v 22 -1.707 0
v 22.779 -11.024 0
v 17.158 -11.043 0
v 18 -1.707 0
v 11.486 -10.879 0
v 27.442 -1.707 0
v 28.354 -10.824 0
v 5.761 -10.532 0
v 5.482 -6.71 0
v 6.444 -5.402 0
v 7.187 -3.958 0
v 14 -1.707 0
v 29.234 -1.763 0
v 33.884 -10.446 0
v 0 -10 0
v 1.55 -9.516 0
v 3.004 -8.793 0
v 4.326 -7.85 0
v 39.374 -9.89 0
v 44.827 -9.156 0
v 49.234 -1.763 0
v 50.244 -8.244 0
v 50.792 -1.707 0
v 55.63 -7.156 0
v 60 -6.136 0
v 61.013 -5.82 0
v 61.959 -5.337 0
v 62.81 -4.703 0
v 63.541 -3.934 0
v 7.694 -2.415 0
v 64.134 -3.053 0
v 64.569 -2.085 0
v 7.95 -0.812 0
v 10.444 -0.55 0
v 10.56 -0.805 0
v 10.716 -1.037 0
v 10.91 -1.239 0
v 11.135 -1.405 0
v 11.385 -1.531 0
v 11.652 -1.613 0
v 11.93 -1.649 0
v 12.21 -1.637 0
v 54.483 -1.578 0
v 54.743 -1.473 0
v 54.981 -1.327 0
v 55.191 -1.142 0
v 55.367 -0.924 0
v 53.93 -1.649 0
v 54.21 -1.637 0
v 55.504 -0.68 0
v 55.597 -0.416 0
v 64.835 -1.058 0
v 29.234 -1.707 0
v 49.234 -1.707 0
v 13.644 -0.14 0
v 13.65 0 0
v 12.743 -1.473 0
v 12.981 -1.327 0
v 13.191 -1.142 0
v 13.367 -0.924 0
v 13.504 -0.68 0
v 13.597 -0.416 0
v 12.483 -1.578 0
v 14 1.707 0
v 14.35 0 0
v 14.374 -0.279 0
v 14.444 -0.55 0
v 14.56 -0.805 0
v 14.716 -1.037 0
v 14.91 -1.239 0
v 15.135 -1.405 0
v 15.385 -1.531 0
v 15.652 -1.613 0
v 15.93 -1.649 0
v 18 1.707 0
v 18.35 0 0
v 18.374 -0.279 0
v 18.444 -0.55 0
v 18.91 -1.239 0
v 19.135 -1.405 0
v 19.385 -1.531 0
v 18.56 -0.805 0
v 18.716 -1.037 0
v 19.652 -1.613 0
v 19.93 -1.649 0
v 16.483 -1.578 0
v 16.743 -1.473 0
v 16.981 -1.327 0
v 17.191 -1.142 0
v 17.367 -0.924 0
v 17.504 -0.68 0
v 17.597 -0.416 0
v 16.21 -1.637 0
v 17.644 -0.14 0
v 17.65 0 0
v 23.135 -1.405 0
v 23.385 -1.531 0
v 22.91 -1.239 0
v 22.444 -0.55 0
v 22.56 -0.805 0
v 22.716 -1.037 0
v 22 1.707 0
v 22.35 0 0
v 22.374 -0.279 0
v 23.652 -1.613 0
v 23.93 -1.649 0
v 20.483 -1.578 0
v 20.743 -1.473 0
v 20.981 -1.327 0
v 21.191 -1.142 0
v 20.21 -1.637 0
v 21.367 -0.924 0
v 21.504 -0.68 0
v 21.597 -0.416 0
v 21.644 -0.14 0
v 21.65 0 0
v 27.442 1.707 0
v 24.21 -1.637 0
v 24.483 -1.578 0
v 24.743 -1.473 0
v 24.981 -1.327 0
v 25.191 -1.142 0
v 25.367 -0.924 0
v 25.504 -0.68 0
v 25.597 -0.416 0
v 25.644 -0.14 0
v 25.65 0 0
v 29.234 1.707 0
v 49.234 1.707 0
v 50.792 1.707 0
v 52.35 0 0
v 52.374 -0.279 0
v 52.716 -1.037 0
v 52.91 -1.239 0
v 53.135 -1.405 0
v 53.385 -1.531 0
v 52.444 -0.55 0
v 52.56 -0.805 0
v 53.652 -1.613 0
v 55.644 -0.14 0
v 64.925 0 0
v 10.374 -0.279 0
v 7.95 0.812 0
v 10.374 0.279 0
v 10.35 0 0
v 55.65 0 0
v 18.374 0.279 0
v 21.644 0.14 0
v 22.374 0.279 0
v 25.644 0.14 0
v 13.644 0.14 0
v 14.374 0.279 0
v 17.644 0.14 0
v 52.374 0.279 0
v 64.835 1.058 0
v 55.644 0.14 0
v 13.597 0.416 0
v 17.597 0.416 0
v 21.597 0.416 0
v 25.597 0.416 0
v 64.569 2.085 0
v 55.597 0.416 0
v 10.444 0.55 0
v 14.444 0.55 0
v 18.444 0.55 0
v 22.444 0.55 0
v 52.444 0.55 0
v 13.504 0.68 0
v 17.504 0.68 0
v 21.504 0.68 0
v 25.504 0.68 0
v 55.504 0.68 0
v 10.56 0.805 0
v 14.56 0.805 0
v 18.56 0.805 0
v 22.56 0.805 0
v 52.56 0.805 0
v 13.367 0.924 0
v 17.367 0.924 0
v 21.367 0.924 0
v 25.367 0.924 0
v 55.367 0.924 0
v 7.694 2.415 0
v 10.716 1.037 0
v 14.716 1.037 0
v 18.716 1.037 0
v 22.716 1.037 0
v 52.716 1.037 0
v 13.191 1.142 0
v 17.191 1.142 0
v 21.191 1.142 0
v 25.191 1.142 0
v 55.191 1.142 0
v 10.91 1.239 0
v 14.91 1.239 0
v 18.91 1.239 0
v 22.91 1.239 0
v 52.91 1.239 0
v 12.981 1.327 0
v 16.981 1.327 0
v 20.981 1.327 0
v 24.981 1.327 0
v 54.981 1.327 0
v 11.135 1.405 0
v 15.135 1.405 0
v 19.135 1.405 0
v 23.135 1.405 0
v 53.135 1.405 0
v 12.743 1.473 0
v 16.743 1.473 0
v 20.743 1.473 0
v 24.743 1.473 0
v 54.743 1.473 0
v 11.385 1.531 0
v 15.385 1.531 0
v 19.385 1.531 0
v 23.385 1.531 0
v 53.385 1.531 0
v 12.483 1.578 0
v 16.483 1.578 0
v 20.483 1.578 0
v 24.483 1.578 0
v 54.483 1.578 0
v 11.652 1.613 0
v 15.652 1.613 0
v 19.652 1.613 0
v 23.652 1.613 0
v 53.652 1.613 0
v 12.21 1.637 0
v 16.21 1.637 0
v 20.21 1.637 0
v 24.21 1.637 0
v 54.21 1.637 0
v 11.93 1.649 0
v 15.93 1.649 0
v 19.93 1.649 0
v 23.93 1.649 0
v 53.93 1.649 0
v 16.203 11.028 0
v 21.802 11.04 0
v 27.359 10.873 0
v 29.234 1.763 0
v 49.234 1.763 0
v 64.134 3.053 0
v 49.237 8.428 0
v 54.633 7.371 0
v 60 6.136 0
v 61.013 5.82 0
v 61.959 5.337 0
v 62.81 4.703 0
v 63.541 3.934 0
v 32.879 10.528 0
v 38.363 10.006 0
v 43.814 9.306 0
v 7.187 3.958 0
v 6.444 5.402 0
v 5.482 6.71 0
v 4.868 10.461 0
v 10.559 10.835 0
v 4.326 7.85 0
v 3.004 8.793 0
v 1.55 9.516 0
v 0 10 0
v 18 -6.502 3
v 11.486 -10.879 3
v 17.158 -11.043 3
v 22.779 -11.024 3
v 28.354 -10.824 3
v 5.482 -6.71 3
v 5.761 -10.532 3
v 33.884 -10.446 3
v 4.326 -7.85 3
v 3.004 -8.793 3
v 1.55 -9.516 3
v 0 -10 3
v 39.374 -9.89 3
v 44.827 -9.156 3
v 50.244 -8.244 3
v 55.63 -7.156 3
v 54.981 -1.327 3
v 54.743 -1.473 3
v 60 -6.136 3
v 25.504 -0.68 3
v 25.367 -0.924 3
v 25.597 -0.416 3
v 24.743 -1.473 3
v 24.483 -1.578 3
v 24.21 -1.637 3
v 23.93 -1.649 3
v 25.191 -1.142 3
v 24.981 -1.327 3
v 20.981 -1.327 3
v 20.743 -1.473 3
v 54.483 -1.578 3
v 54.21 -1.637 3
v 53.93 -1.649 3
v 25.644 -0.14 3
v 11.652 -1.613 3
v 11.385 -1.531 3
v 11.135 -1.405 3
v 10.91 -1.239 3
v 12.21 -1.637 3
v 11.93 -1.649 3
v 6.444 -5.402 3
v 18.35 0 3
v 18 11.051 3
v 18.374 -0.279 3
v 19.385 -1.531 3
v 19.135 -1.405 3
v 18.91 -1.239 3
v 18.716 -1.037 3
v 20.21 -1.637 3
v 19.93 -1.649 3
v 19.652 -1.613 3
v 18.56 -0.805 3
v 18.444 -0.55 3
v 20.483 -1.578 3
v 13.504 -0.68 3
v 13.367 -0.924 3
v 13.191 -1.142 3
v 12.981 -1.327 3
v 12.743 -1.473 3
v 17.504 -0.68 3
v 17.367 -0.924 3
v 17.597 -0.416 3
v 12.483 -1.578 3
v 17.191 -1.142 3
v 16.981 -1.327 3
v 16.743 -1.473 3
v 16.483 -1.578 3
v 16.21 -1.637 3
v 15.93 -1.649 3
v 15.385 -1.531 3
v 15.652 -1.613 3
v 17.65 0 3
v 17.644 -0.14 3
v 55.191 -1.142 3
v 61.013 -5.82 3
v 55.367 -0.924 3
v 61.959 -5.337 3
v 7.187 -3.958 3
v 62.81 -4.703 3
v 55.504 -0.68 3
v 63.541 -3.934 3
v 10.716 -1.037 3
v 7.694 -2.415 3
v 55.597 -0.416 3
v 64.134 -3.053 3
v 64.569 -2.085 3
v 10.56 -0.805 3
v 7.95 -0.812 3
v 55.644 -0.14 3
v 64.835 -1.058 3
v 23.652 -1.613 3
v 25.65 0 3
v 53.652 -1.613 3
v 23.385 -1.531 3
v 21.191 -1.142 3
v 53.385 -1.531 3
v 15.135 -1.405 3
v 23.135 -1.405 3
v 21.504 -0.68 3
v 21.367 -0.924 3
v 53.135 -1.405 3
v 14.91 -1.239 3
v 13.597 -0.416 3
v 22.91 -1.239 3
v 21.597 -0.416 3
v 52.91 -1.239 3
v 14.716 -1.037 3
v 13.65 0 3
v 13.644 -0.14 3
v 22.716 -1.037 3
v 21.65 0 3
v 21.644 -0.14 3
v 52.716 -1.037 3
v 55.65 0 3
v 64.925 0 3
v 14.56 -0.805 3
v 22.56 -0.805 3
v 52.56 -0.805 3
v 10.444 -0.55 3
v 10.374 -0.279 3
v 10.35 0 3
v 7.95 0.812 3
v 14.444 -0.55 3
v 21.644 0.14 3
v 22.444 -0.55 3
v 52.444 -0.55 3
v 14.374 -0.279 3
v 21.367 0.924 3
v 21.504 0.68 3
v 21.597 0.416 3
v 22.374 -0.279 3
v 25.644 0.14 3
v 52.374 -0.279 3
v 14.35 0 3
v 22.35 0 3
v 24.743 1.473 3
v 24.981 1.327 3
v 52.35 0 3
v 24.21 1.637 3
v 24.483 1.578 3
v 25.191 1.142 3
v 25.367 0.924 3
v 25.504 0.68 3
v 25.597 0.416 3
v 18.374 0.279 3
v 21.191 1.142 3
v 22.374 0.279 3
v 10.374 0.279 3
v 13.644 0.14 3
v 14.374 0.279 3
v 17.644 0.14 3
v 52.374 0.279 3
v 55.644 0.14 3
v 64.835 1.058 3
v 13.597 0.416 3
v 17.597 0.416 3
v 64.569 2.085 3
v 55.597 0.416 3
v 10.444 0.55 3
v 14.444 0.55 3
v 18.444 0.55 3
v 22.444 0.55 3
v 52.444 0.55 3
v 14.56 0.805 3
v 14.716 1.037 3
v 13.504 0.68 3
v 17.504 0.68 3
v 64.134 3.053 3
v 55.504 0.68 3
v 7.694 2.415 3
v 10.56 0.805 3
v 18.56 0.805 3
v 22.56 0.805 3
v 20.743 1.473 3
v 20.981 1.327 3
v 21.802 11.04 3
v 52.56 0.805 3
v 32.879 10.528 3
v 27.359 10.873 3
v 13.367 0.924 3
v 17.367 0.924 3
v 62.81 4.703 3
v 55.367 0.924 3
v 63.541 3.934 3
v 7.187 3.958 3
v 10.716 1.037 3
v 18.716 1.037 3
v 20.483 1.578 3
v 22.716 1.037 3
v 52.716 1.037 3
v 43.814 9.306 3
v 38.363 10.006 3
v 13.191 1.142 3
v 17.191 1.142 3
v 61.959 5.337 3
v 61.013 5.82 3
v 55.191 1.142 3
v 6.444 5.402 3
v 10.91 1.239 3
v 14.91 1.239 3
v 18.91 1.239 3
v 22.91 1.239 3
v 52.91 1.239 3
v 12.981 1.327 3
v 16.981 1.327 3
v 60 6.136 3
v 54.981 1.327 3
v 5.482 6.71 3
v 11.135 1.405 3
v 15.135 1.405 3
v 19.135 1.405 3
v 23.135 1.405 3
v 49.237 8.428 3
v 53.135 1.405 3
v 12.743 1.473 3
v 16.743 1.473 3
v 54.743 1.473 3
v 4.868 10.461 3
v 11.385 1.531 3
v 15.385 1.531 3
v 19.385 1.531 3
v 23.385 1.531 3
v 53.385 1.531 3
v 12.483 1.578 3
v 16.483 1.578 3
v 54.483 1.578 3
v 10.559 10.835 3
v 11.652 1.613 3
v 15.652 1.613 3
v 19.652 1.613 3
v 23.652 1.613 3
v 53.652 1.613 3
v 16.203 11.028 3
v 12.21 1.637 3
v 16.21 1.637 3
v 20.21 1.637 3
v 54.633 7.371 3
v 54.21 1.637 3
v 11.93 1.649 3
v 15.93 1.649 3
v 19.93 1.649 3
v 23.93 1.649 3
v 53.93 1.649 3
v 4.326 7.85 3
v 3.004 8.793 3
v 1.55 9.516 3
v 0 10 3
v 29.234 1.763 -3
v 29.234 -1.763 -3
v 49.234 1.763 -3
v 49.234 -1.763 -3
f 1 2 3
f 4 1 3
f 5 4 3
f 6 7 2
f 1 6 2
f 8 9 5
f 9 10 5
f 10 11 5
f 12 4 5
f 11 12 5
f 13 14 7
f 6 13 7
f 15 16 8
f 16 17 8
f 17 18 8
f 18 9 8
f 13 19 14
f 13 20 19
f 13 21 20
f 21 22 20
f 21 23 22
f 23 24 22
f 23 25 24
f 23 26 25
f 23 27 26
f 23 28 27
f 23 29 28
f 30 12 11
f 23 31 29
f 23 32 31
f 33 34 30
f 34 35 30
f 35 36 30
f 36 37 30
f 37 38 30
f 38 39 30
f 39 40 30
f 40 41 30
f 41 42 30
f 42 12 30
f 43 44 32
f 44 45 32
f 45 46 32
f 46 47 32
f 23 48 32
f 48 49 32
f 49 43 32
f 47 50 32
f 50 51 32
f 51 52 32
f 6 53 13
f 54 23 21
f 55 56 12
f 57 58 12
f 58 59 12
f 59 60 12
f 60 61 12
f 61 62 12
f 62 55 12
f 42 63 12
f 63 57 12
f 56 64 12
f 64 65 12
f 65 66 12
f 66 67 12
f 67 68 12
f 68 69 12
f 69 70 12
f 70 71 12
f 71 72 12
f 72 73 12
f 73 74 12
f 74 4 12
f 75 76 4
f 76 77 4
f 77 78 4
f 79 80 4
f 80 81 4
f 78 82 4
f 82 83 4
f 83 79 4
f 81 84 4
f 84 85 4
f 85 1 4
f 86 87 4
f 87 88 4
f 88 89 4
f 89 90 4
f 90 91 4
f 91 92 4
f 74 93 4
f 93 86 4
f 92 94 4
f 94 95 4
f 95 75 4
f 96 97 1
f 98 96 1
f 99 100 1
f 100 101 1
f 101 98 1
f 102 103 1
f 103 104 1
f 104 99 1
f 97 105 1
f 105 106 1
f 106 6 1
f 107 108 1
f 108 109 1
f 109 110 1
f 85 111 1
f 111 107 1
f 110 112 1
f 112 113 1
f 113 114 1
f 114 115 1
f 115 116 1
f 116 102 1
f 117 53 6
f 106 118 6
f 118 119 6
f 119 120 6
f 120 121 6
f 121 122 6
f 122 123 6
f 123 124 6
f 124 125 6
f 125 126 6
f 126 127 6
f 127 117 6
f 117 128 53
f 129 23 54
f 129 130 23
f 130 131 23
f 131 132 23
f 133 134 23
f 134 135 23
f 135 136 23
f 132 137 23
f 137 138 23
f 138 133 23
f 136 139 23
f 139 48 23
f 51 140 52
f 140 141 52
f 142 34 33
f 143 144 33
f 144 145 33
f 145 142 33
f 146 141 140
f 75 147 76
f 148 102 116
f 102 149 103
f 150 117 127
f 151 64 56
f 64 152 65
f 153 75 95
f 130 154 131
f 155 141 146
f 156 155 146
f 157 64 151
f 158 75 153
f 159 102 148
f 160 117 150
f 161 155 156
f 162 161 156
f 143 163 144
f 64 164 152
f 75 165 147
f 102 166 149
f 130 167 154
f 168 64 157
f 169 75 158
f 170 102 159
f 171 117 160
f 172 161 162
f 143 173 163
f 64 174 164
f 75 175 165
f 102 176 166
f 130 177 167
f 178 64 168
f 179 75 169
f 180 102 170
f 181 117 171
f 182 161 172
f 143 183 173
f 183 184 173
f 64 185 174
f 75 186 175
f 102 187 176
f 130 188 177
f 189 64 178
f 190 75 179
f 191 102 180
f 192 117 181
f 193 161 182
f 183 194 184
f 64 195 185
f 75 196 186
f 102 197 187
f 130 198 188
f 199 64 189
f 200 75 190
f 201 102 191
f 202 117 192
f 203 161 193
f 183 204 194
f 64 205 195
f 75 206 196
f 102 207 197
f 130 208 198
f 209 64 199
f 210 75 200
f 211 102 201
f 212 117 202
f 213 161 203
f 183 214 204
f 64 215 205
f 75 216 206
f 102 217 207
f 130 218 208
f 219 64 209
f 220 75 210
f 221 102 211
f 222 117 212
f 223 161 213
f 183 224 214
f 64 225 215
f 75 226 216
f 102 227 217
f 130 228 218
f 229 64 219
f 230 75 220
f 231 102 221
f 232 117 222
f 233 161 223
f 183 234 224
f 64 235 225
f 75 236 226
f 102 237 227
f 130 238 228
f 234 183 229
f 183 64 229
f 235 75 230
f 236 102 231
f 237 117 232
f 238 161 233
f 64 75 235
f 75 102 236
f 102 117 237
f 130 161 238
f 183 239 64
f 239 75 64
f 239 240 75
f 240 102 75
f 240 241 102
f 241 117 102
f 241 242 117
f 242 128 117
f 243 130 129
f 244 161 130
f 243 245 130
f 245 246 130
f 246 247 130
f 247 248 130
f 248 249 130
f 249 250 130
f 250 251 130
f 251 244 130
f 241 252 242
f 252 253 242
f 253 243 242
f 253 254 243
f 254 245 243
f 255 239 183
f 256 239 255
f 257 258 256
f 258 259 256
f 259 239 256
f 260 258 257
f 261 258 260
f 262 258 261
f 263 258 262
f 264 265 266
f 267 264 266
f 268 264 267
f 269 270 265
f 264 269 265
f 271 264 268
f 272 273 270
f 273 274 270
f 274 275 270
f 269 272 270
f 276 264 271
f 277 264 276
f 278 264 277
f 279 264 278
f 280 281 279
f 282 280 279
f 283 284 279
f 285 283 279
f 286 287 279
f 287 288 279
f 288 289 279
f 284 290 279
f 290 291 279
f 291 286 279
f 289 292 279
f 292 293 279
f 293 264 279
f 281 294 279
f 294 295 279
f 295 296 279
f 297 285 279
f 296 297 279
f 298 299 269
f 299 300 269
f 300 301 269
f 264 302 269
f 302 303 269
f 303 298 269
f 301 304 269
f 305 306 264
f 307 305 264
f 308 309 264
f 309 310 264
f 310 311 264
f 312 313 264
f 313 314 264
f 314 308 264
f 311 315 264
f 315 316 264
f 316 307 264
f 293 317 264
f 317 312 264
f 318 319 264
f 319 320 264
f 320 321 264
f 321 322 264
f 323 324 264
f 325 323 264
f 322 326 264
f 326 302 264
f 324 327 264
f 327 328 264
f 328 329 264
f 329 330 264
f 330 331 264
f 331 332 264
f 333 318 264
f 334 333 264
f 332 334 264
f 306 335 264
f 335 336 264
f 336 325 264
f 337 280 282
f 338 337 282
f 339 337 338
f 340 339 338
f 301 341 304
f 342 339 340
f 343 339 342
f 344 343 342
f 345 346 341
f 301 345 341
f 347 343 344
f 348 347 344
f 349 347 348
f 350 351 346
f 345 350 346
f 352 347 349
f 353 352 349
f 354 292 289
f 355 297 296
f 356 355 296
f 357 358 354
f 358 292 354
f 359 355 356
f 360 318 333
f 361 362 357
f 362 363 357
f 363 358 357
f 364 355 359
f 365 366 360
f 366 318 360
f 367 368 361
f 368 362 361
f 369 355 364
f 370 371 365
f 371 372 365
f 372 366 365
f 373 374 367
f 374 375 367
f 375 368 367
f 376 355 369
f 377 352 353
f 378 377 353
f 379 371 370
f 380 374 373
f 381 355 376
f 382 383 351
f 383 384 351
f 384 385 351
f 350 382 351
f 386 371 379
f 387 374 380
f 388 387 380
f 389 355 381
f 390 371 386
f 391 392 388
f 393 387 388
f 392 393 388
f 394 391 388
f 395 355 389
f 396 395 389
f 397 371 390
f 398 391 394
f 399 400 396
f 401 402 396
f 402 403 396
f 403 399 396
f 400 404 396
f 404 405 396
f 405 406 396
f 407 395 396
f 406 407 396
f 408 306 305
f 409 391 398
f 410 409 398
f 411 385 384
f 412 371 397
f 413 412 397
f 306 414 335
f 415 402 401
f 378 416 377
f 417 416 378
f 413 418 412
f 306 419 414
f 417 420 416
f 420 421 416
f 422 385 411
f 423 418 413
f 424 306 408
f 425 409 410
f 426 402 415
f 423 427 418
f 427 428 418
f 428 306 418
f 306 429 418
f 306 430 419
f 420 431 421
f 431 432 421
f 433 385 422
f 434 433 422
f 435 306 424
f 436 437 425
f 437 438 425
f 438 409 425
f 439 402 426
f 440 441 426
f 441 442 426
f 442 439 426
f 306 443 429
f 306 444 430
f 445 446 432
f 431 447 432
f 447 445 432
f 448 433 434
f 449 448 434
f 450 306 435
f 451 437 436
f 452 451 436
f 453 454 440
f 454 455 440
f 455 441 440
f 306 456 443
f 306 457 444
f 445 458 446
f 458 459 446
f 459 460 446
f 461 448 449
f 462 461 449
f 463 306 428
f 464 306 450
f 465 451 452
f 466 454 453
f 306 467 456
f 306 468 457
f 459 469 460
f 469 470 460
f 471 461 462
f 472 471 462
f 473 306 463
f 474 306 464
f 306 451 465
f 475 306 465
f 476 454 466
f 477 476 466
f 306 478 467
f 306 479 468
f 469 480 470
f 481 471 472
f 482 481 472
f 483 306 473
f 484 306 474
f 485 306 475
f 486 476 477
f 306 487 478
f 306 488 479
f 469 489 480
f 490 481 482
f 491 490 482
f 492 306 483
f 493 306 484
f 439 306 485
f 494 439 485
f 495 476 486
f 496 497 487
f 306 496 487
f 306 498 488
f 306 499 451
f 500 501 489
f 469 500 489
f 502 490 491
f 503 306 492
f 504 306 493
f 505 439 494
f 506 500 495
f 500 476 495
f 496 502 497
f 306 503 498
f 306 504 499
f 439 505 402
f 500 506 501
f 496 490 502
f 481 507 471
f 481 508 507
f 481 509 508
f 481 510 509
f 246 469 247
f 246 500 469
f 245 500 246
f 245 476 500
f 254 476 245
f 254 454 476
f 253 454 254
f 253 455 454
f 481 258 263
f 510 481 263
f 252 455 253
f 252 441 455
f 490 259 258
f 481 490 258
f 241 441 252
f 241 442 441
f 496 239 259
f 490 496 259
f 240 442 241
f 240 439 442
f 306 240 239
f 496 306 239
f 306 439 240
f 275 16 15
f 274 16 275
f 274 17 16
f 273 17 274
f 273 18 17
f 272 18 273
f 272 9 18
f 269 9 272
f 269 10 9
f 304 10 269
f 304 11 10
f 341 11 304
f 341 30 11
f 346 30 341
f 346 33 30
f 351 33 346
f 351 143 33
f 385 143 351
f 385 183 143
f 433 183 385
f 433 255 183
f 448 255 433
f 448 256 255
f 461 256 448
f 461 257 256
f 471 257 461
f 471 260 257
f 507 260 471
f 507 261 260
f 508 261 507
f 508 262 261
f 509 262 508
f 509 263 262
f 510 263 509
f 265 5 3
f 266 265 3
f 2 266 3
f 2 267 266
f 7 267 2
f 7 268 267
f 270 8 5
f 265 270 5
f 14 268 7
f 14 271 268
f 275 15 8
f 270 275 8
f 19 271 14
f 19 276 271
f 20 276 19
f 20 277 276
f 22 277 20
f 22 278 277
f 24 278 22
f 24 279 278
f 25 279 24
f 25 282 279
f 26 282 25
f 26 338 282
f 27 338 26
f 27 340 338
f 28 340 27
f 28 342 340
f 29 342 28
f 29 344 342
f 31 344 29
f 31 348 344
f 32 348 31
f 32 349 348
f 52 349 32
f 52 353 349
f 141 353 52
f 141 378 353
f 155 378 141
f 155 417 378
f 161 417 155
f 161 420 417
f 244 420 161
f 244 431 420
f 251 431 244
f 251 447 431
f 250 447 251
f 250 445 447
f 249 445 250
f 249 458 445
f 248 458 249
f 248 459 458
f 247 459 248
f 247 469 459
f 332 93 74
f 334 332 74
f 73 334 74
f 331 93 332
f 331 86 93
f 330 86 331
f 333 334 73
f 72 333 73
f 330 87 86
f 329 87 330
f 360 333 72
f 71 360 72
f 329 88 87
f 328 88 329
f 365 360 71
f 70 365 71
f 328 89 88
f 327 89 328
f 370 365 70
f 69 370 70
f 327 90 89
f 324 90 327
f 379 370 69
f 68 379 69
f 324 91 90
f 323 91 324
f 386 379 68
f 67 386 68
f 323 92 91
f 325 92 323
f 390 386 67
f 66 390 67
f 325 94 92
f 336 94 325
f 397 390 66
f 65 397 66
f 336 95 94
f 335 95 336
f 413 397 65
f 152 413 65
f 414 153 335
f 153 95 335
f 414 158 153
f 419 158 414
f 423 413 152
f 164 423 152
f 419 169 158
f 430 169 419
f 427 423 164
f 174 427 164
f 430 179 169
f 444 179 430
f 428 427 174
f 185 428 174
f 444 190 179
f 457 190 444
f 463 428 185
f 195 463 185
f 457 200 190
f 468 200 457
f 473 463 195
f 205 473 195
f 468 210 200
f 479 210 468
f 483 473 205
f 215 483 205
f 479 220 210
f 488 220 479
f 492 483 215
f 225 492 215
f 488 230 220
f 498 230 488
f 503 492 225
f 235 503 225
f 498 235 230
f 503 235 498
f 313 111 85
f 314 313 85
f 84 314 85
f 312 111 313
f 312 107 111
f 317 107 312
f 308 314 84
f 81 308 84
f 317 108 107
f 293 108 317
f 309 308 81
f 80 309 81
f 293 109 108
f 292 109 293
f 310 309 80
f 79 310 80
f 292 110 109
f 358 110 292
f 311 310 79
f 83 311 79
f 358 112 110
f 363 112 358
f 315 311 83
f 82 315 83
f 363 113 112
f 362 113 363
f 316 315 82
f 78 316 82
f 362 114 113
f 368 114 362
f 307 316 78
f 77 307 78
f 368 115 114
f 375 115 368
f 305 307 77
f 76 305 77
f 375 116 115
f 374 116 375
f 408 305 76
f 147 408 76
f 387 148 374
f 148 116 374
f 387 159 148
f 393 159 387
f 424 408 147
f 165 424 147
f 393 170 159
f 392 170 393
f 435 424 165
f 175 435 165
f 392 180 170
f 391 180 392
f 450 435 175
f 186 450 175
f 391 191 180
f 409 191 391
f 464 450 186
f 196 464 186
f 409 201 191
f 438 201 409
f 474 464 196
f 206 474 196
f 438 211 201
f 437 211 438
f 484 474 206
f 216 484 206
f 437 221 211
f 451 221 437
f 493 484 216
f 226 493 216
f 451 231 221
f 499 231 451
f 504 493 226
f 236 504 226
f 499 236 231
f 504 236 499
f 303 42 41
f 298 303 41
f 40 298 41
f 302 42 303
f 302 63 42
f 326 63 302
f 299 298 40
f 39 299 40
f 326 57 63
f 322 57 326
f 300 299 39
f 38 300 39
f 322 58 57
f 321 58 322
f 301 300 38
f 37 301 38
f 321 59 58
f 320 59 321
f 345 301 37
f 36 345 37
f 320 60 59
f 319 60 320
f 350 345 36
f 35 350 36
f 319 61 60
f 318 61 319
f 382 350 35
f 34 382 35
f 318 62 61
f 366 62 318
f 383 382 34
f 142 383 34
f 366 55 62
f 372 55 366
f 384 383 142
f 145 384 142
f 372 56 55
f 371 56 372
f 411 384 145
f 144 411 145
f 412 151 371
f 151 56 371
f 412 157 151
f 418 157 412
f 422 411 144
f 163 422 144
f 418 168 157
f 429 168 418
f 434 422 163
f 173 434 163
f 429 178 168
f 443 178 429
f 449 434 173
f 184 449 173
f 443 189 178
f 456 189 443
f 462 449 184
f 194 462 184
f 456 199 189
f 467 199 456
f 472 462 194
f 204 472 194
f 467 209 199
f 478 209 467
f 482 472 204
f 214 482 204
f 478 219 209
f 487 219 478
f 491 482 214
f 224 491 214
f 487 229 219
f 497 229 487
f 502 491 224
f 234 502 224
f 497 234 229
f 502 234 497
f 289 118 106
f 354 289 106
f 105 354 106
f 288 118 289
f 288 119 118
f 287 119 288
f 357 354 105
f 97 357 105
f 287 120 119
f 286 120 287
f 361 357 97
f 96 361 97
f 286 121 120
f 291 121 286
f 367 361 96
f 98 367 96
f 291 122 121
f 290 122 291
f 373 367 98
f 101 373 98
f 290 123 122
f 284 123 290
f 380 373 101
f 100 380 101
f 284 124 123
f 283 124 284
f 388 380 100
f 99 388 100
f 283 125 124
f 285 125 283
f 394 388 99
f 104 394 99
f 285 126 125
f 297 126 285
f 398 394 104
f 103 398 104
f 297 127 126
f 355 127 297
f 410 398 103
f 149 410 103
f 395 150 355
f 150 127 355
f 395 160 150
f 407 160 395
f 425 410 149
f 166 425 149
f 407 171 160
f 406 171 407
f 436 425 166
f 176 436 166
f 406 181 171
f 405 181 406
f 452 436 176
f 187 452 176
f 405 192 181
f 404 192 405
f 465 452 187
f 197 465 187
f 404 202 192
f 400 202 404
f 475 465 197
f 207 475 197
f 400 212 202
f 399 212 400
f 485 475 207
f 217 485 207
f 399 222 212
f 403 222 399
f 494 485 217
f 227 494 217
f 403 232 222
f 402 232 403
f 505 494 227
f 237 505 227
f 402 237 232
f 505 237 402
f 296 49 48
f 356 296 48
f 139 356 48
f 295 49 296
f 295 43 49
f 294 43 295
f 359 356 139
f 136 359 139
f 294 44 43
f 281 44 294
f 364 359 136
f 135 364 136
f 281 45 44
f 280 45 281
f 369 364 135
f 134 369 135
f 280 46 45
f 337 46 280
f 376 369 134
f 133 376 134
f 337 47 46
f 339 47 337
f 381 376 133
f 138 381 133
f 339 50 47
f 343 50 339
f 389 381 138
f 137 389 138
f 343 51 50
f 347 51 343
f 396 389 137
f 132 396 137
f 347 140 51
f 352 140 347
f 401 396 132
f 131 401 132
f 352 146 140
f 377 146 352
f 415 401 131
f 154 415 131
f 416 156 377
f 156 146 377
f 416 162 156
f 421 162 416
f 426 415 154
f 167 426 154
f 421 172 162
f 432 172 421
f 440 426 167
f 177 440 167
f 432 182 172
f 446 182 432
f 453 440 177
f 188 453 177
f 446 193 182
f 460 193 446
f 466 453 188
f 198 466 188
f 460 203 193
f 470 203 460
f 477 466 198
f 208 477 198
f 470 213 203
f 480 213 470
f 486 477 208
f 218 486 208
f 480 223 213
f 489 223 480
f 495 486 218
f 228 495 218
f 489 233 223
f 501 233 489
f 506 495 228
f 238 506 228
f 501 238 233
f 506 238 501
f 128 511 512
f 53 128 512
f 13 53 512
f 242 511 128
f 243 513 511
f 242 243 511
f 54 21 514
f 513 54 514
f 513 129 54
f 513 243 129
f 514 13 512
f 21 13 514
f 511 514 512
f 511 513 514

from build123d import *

# Parameters (mm, degrees)
SKETCH1_R           = 1.65
BOSS_EXTRUDE1_DEPTH = 3
SKETCH3_W           = 20
SKETCH3_H           = 3.526384588
BOSS_EXTRUDE2_DEPTH = 3


with BuildPart() as part:
    # Sketch1 → Boss-Extrude1 (new body)
    with BuildSketch(Plane.XY):
        with BuildLine():
            ThreePointArc((60, 6.136005382), (64.924934056, 0), (60, -6.136005382))
            add(Edge.make_bspline(
                [(0, -10), (30.892479525, -13.337059616), (60, -6.136005382)],
                knots=[0, 0, 0, 0.860506177, 0.860506177, 0.860506177], degree=2))
            ThreePointArc((0, -10), (7.982090261, 0), (0, 10))
            add(Edge.make_bspline(
                [(0, 10), (30.892479525, 13.337059616), (60, 6.136005382)],
                knots=[0, 0, 0, 0.860506177, 0.860506177, 0.860506177], degree=2))
        make_face()
        with Locations((12, 0)):
            Circle(SKETCH1_R, mode=Mode.SUBTRACT)
        with Locations((16, 0)):
            Circle(SKETCH1_R, mode=Mode.SUBTRACT)
        with Locations((20, 0)):
            Circle(SKETCH1_R, mode=Mode.SUBTRACT)
        with Locations((24, 0)):
            Circle(SKETCH1_R, mode=Mode.SUBTRACT)
        with Locations((54, 0)):
            Circle(SKETCH1_R, mode=Mode.SUBTRACT)
    extrude(amount=BOSS_EXTRUDE1_DEPTH)

    # Sketch3 → Boss-Extrude2 (add)
    with BuildSketch(Plane(origin=(0, 0, 0), x_dir=(-1, 0, 0), z_dir=(0, 0, -1))):
        with Locations((-39.233748341, 0)):
            Rectangle(SKETCH3_W, SKETCH3_H)
    extrude(amount=BOSS_EXTRUDE2_DEPTH)


solid = part.part
